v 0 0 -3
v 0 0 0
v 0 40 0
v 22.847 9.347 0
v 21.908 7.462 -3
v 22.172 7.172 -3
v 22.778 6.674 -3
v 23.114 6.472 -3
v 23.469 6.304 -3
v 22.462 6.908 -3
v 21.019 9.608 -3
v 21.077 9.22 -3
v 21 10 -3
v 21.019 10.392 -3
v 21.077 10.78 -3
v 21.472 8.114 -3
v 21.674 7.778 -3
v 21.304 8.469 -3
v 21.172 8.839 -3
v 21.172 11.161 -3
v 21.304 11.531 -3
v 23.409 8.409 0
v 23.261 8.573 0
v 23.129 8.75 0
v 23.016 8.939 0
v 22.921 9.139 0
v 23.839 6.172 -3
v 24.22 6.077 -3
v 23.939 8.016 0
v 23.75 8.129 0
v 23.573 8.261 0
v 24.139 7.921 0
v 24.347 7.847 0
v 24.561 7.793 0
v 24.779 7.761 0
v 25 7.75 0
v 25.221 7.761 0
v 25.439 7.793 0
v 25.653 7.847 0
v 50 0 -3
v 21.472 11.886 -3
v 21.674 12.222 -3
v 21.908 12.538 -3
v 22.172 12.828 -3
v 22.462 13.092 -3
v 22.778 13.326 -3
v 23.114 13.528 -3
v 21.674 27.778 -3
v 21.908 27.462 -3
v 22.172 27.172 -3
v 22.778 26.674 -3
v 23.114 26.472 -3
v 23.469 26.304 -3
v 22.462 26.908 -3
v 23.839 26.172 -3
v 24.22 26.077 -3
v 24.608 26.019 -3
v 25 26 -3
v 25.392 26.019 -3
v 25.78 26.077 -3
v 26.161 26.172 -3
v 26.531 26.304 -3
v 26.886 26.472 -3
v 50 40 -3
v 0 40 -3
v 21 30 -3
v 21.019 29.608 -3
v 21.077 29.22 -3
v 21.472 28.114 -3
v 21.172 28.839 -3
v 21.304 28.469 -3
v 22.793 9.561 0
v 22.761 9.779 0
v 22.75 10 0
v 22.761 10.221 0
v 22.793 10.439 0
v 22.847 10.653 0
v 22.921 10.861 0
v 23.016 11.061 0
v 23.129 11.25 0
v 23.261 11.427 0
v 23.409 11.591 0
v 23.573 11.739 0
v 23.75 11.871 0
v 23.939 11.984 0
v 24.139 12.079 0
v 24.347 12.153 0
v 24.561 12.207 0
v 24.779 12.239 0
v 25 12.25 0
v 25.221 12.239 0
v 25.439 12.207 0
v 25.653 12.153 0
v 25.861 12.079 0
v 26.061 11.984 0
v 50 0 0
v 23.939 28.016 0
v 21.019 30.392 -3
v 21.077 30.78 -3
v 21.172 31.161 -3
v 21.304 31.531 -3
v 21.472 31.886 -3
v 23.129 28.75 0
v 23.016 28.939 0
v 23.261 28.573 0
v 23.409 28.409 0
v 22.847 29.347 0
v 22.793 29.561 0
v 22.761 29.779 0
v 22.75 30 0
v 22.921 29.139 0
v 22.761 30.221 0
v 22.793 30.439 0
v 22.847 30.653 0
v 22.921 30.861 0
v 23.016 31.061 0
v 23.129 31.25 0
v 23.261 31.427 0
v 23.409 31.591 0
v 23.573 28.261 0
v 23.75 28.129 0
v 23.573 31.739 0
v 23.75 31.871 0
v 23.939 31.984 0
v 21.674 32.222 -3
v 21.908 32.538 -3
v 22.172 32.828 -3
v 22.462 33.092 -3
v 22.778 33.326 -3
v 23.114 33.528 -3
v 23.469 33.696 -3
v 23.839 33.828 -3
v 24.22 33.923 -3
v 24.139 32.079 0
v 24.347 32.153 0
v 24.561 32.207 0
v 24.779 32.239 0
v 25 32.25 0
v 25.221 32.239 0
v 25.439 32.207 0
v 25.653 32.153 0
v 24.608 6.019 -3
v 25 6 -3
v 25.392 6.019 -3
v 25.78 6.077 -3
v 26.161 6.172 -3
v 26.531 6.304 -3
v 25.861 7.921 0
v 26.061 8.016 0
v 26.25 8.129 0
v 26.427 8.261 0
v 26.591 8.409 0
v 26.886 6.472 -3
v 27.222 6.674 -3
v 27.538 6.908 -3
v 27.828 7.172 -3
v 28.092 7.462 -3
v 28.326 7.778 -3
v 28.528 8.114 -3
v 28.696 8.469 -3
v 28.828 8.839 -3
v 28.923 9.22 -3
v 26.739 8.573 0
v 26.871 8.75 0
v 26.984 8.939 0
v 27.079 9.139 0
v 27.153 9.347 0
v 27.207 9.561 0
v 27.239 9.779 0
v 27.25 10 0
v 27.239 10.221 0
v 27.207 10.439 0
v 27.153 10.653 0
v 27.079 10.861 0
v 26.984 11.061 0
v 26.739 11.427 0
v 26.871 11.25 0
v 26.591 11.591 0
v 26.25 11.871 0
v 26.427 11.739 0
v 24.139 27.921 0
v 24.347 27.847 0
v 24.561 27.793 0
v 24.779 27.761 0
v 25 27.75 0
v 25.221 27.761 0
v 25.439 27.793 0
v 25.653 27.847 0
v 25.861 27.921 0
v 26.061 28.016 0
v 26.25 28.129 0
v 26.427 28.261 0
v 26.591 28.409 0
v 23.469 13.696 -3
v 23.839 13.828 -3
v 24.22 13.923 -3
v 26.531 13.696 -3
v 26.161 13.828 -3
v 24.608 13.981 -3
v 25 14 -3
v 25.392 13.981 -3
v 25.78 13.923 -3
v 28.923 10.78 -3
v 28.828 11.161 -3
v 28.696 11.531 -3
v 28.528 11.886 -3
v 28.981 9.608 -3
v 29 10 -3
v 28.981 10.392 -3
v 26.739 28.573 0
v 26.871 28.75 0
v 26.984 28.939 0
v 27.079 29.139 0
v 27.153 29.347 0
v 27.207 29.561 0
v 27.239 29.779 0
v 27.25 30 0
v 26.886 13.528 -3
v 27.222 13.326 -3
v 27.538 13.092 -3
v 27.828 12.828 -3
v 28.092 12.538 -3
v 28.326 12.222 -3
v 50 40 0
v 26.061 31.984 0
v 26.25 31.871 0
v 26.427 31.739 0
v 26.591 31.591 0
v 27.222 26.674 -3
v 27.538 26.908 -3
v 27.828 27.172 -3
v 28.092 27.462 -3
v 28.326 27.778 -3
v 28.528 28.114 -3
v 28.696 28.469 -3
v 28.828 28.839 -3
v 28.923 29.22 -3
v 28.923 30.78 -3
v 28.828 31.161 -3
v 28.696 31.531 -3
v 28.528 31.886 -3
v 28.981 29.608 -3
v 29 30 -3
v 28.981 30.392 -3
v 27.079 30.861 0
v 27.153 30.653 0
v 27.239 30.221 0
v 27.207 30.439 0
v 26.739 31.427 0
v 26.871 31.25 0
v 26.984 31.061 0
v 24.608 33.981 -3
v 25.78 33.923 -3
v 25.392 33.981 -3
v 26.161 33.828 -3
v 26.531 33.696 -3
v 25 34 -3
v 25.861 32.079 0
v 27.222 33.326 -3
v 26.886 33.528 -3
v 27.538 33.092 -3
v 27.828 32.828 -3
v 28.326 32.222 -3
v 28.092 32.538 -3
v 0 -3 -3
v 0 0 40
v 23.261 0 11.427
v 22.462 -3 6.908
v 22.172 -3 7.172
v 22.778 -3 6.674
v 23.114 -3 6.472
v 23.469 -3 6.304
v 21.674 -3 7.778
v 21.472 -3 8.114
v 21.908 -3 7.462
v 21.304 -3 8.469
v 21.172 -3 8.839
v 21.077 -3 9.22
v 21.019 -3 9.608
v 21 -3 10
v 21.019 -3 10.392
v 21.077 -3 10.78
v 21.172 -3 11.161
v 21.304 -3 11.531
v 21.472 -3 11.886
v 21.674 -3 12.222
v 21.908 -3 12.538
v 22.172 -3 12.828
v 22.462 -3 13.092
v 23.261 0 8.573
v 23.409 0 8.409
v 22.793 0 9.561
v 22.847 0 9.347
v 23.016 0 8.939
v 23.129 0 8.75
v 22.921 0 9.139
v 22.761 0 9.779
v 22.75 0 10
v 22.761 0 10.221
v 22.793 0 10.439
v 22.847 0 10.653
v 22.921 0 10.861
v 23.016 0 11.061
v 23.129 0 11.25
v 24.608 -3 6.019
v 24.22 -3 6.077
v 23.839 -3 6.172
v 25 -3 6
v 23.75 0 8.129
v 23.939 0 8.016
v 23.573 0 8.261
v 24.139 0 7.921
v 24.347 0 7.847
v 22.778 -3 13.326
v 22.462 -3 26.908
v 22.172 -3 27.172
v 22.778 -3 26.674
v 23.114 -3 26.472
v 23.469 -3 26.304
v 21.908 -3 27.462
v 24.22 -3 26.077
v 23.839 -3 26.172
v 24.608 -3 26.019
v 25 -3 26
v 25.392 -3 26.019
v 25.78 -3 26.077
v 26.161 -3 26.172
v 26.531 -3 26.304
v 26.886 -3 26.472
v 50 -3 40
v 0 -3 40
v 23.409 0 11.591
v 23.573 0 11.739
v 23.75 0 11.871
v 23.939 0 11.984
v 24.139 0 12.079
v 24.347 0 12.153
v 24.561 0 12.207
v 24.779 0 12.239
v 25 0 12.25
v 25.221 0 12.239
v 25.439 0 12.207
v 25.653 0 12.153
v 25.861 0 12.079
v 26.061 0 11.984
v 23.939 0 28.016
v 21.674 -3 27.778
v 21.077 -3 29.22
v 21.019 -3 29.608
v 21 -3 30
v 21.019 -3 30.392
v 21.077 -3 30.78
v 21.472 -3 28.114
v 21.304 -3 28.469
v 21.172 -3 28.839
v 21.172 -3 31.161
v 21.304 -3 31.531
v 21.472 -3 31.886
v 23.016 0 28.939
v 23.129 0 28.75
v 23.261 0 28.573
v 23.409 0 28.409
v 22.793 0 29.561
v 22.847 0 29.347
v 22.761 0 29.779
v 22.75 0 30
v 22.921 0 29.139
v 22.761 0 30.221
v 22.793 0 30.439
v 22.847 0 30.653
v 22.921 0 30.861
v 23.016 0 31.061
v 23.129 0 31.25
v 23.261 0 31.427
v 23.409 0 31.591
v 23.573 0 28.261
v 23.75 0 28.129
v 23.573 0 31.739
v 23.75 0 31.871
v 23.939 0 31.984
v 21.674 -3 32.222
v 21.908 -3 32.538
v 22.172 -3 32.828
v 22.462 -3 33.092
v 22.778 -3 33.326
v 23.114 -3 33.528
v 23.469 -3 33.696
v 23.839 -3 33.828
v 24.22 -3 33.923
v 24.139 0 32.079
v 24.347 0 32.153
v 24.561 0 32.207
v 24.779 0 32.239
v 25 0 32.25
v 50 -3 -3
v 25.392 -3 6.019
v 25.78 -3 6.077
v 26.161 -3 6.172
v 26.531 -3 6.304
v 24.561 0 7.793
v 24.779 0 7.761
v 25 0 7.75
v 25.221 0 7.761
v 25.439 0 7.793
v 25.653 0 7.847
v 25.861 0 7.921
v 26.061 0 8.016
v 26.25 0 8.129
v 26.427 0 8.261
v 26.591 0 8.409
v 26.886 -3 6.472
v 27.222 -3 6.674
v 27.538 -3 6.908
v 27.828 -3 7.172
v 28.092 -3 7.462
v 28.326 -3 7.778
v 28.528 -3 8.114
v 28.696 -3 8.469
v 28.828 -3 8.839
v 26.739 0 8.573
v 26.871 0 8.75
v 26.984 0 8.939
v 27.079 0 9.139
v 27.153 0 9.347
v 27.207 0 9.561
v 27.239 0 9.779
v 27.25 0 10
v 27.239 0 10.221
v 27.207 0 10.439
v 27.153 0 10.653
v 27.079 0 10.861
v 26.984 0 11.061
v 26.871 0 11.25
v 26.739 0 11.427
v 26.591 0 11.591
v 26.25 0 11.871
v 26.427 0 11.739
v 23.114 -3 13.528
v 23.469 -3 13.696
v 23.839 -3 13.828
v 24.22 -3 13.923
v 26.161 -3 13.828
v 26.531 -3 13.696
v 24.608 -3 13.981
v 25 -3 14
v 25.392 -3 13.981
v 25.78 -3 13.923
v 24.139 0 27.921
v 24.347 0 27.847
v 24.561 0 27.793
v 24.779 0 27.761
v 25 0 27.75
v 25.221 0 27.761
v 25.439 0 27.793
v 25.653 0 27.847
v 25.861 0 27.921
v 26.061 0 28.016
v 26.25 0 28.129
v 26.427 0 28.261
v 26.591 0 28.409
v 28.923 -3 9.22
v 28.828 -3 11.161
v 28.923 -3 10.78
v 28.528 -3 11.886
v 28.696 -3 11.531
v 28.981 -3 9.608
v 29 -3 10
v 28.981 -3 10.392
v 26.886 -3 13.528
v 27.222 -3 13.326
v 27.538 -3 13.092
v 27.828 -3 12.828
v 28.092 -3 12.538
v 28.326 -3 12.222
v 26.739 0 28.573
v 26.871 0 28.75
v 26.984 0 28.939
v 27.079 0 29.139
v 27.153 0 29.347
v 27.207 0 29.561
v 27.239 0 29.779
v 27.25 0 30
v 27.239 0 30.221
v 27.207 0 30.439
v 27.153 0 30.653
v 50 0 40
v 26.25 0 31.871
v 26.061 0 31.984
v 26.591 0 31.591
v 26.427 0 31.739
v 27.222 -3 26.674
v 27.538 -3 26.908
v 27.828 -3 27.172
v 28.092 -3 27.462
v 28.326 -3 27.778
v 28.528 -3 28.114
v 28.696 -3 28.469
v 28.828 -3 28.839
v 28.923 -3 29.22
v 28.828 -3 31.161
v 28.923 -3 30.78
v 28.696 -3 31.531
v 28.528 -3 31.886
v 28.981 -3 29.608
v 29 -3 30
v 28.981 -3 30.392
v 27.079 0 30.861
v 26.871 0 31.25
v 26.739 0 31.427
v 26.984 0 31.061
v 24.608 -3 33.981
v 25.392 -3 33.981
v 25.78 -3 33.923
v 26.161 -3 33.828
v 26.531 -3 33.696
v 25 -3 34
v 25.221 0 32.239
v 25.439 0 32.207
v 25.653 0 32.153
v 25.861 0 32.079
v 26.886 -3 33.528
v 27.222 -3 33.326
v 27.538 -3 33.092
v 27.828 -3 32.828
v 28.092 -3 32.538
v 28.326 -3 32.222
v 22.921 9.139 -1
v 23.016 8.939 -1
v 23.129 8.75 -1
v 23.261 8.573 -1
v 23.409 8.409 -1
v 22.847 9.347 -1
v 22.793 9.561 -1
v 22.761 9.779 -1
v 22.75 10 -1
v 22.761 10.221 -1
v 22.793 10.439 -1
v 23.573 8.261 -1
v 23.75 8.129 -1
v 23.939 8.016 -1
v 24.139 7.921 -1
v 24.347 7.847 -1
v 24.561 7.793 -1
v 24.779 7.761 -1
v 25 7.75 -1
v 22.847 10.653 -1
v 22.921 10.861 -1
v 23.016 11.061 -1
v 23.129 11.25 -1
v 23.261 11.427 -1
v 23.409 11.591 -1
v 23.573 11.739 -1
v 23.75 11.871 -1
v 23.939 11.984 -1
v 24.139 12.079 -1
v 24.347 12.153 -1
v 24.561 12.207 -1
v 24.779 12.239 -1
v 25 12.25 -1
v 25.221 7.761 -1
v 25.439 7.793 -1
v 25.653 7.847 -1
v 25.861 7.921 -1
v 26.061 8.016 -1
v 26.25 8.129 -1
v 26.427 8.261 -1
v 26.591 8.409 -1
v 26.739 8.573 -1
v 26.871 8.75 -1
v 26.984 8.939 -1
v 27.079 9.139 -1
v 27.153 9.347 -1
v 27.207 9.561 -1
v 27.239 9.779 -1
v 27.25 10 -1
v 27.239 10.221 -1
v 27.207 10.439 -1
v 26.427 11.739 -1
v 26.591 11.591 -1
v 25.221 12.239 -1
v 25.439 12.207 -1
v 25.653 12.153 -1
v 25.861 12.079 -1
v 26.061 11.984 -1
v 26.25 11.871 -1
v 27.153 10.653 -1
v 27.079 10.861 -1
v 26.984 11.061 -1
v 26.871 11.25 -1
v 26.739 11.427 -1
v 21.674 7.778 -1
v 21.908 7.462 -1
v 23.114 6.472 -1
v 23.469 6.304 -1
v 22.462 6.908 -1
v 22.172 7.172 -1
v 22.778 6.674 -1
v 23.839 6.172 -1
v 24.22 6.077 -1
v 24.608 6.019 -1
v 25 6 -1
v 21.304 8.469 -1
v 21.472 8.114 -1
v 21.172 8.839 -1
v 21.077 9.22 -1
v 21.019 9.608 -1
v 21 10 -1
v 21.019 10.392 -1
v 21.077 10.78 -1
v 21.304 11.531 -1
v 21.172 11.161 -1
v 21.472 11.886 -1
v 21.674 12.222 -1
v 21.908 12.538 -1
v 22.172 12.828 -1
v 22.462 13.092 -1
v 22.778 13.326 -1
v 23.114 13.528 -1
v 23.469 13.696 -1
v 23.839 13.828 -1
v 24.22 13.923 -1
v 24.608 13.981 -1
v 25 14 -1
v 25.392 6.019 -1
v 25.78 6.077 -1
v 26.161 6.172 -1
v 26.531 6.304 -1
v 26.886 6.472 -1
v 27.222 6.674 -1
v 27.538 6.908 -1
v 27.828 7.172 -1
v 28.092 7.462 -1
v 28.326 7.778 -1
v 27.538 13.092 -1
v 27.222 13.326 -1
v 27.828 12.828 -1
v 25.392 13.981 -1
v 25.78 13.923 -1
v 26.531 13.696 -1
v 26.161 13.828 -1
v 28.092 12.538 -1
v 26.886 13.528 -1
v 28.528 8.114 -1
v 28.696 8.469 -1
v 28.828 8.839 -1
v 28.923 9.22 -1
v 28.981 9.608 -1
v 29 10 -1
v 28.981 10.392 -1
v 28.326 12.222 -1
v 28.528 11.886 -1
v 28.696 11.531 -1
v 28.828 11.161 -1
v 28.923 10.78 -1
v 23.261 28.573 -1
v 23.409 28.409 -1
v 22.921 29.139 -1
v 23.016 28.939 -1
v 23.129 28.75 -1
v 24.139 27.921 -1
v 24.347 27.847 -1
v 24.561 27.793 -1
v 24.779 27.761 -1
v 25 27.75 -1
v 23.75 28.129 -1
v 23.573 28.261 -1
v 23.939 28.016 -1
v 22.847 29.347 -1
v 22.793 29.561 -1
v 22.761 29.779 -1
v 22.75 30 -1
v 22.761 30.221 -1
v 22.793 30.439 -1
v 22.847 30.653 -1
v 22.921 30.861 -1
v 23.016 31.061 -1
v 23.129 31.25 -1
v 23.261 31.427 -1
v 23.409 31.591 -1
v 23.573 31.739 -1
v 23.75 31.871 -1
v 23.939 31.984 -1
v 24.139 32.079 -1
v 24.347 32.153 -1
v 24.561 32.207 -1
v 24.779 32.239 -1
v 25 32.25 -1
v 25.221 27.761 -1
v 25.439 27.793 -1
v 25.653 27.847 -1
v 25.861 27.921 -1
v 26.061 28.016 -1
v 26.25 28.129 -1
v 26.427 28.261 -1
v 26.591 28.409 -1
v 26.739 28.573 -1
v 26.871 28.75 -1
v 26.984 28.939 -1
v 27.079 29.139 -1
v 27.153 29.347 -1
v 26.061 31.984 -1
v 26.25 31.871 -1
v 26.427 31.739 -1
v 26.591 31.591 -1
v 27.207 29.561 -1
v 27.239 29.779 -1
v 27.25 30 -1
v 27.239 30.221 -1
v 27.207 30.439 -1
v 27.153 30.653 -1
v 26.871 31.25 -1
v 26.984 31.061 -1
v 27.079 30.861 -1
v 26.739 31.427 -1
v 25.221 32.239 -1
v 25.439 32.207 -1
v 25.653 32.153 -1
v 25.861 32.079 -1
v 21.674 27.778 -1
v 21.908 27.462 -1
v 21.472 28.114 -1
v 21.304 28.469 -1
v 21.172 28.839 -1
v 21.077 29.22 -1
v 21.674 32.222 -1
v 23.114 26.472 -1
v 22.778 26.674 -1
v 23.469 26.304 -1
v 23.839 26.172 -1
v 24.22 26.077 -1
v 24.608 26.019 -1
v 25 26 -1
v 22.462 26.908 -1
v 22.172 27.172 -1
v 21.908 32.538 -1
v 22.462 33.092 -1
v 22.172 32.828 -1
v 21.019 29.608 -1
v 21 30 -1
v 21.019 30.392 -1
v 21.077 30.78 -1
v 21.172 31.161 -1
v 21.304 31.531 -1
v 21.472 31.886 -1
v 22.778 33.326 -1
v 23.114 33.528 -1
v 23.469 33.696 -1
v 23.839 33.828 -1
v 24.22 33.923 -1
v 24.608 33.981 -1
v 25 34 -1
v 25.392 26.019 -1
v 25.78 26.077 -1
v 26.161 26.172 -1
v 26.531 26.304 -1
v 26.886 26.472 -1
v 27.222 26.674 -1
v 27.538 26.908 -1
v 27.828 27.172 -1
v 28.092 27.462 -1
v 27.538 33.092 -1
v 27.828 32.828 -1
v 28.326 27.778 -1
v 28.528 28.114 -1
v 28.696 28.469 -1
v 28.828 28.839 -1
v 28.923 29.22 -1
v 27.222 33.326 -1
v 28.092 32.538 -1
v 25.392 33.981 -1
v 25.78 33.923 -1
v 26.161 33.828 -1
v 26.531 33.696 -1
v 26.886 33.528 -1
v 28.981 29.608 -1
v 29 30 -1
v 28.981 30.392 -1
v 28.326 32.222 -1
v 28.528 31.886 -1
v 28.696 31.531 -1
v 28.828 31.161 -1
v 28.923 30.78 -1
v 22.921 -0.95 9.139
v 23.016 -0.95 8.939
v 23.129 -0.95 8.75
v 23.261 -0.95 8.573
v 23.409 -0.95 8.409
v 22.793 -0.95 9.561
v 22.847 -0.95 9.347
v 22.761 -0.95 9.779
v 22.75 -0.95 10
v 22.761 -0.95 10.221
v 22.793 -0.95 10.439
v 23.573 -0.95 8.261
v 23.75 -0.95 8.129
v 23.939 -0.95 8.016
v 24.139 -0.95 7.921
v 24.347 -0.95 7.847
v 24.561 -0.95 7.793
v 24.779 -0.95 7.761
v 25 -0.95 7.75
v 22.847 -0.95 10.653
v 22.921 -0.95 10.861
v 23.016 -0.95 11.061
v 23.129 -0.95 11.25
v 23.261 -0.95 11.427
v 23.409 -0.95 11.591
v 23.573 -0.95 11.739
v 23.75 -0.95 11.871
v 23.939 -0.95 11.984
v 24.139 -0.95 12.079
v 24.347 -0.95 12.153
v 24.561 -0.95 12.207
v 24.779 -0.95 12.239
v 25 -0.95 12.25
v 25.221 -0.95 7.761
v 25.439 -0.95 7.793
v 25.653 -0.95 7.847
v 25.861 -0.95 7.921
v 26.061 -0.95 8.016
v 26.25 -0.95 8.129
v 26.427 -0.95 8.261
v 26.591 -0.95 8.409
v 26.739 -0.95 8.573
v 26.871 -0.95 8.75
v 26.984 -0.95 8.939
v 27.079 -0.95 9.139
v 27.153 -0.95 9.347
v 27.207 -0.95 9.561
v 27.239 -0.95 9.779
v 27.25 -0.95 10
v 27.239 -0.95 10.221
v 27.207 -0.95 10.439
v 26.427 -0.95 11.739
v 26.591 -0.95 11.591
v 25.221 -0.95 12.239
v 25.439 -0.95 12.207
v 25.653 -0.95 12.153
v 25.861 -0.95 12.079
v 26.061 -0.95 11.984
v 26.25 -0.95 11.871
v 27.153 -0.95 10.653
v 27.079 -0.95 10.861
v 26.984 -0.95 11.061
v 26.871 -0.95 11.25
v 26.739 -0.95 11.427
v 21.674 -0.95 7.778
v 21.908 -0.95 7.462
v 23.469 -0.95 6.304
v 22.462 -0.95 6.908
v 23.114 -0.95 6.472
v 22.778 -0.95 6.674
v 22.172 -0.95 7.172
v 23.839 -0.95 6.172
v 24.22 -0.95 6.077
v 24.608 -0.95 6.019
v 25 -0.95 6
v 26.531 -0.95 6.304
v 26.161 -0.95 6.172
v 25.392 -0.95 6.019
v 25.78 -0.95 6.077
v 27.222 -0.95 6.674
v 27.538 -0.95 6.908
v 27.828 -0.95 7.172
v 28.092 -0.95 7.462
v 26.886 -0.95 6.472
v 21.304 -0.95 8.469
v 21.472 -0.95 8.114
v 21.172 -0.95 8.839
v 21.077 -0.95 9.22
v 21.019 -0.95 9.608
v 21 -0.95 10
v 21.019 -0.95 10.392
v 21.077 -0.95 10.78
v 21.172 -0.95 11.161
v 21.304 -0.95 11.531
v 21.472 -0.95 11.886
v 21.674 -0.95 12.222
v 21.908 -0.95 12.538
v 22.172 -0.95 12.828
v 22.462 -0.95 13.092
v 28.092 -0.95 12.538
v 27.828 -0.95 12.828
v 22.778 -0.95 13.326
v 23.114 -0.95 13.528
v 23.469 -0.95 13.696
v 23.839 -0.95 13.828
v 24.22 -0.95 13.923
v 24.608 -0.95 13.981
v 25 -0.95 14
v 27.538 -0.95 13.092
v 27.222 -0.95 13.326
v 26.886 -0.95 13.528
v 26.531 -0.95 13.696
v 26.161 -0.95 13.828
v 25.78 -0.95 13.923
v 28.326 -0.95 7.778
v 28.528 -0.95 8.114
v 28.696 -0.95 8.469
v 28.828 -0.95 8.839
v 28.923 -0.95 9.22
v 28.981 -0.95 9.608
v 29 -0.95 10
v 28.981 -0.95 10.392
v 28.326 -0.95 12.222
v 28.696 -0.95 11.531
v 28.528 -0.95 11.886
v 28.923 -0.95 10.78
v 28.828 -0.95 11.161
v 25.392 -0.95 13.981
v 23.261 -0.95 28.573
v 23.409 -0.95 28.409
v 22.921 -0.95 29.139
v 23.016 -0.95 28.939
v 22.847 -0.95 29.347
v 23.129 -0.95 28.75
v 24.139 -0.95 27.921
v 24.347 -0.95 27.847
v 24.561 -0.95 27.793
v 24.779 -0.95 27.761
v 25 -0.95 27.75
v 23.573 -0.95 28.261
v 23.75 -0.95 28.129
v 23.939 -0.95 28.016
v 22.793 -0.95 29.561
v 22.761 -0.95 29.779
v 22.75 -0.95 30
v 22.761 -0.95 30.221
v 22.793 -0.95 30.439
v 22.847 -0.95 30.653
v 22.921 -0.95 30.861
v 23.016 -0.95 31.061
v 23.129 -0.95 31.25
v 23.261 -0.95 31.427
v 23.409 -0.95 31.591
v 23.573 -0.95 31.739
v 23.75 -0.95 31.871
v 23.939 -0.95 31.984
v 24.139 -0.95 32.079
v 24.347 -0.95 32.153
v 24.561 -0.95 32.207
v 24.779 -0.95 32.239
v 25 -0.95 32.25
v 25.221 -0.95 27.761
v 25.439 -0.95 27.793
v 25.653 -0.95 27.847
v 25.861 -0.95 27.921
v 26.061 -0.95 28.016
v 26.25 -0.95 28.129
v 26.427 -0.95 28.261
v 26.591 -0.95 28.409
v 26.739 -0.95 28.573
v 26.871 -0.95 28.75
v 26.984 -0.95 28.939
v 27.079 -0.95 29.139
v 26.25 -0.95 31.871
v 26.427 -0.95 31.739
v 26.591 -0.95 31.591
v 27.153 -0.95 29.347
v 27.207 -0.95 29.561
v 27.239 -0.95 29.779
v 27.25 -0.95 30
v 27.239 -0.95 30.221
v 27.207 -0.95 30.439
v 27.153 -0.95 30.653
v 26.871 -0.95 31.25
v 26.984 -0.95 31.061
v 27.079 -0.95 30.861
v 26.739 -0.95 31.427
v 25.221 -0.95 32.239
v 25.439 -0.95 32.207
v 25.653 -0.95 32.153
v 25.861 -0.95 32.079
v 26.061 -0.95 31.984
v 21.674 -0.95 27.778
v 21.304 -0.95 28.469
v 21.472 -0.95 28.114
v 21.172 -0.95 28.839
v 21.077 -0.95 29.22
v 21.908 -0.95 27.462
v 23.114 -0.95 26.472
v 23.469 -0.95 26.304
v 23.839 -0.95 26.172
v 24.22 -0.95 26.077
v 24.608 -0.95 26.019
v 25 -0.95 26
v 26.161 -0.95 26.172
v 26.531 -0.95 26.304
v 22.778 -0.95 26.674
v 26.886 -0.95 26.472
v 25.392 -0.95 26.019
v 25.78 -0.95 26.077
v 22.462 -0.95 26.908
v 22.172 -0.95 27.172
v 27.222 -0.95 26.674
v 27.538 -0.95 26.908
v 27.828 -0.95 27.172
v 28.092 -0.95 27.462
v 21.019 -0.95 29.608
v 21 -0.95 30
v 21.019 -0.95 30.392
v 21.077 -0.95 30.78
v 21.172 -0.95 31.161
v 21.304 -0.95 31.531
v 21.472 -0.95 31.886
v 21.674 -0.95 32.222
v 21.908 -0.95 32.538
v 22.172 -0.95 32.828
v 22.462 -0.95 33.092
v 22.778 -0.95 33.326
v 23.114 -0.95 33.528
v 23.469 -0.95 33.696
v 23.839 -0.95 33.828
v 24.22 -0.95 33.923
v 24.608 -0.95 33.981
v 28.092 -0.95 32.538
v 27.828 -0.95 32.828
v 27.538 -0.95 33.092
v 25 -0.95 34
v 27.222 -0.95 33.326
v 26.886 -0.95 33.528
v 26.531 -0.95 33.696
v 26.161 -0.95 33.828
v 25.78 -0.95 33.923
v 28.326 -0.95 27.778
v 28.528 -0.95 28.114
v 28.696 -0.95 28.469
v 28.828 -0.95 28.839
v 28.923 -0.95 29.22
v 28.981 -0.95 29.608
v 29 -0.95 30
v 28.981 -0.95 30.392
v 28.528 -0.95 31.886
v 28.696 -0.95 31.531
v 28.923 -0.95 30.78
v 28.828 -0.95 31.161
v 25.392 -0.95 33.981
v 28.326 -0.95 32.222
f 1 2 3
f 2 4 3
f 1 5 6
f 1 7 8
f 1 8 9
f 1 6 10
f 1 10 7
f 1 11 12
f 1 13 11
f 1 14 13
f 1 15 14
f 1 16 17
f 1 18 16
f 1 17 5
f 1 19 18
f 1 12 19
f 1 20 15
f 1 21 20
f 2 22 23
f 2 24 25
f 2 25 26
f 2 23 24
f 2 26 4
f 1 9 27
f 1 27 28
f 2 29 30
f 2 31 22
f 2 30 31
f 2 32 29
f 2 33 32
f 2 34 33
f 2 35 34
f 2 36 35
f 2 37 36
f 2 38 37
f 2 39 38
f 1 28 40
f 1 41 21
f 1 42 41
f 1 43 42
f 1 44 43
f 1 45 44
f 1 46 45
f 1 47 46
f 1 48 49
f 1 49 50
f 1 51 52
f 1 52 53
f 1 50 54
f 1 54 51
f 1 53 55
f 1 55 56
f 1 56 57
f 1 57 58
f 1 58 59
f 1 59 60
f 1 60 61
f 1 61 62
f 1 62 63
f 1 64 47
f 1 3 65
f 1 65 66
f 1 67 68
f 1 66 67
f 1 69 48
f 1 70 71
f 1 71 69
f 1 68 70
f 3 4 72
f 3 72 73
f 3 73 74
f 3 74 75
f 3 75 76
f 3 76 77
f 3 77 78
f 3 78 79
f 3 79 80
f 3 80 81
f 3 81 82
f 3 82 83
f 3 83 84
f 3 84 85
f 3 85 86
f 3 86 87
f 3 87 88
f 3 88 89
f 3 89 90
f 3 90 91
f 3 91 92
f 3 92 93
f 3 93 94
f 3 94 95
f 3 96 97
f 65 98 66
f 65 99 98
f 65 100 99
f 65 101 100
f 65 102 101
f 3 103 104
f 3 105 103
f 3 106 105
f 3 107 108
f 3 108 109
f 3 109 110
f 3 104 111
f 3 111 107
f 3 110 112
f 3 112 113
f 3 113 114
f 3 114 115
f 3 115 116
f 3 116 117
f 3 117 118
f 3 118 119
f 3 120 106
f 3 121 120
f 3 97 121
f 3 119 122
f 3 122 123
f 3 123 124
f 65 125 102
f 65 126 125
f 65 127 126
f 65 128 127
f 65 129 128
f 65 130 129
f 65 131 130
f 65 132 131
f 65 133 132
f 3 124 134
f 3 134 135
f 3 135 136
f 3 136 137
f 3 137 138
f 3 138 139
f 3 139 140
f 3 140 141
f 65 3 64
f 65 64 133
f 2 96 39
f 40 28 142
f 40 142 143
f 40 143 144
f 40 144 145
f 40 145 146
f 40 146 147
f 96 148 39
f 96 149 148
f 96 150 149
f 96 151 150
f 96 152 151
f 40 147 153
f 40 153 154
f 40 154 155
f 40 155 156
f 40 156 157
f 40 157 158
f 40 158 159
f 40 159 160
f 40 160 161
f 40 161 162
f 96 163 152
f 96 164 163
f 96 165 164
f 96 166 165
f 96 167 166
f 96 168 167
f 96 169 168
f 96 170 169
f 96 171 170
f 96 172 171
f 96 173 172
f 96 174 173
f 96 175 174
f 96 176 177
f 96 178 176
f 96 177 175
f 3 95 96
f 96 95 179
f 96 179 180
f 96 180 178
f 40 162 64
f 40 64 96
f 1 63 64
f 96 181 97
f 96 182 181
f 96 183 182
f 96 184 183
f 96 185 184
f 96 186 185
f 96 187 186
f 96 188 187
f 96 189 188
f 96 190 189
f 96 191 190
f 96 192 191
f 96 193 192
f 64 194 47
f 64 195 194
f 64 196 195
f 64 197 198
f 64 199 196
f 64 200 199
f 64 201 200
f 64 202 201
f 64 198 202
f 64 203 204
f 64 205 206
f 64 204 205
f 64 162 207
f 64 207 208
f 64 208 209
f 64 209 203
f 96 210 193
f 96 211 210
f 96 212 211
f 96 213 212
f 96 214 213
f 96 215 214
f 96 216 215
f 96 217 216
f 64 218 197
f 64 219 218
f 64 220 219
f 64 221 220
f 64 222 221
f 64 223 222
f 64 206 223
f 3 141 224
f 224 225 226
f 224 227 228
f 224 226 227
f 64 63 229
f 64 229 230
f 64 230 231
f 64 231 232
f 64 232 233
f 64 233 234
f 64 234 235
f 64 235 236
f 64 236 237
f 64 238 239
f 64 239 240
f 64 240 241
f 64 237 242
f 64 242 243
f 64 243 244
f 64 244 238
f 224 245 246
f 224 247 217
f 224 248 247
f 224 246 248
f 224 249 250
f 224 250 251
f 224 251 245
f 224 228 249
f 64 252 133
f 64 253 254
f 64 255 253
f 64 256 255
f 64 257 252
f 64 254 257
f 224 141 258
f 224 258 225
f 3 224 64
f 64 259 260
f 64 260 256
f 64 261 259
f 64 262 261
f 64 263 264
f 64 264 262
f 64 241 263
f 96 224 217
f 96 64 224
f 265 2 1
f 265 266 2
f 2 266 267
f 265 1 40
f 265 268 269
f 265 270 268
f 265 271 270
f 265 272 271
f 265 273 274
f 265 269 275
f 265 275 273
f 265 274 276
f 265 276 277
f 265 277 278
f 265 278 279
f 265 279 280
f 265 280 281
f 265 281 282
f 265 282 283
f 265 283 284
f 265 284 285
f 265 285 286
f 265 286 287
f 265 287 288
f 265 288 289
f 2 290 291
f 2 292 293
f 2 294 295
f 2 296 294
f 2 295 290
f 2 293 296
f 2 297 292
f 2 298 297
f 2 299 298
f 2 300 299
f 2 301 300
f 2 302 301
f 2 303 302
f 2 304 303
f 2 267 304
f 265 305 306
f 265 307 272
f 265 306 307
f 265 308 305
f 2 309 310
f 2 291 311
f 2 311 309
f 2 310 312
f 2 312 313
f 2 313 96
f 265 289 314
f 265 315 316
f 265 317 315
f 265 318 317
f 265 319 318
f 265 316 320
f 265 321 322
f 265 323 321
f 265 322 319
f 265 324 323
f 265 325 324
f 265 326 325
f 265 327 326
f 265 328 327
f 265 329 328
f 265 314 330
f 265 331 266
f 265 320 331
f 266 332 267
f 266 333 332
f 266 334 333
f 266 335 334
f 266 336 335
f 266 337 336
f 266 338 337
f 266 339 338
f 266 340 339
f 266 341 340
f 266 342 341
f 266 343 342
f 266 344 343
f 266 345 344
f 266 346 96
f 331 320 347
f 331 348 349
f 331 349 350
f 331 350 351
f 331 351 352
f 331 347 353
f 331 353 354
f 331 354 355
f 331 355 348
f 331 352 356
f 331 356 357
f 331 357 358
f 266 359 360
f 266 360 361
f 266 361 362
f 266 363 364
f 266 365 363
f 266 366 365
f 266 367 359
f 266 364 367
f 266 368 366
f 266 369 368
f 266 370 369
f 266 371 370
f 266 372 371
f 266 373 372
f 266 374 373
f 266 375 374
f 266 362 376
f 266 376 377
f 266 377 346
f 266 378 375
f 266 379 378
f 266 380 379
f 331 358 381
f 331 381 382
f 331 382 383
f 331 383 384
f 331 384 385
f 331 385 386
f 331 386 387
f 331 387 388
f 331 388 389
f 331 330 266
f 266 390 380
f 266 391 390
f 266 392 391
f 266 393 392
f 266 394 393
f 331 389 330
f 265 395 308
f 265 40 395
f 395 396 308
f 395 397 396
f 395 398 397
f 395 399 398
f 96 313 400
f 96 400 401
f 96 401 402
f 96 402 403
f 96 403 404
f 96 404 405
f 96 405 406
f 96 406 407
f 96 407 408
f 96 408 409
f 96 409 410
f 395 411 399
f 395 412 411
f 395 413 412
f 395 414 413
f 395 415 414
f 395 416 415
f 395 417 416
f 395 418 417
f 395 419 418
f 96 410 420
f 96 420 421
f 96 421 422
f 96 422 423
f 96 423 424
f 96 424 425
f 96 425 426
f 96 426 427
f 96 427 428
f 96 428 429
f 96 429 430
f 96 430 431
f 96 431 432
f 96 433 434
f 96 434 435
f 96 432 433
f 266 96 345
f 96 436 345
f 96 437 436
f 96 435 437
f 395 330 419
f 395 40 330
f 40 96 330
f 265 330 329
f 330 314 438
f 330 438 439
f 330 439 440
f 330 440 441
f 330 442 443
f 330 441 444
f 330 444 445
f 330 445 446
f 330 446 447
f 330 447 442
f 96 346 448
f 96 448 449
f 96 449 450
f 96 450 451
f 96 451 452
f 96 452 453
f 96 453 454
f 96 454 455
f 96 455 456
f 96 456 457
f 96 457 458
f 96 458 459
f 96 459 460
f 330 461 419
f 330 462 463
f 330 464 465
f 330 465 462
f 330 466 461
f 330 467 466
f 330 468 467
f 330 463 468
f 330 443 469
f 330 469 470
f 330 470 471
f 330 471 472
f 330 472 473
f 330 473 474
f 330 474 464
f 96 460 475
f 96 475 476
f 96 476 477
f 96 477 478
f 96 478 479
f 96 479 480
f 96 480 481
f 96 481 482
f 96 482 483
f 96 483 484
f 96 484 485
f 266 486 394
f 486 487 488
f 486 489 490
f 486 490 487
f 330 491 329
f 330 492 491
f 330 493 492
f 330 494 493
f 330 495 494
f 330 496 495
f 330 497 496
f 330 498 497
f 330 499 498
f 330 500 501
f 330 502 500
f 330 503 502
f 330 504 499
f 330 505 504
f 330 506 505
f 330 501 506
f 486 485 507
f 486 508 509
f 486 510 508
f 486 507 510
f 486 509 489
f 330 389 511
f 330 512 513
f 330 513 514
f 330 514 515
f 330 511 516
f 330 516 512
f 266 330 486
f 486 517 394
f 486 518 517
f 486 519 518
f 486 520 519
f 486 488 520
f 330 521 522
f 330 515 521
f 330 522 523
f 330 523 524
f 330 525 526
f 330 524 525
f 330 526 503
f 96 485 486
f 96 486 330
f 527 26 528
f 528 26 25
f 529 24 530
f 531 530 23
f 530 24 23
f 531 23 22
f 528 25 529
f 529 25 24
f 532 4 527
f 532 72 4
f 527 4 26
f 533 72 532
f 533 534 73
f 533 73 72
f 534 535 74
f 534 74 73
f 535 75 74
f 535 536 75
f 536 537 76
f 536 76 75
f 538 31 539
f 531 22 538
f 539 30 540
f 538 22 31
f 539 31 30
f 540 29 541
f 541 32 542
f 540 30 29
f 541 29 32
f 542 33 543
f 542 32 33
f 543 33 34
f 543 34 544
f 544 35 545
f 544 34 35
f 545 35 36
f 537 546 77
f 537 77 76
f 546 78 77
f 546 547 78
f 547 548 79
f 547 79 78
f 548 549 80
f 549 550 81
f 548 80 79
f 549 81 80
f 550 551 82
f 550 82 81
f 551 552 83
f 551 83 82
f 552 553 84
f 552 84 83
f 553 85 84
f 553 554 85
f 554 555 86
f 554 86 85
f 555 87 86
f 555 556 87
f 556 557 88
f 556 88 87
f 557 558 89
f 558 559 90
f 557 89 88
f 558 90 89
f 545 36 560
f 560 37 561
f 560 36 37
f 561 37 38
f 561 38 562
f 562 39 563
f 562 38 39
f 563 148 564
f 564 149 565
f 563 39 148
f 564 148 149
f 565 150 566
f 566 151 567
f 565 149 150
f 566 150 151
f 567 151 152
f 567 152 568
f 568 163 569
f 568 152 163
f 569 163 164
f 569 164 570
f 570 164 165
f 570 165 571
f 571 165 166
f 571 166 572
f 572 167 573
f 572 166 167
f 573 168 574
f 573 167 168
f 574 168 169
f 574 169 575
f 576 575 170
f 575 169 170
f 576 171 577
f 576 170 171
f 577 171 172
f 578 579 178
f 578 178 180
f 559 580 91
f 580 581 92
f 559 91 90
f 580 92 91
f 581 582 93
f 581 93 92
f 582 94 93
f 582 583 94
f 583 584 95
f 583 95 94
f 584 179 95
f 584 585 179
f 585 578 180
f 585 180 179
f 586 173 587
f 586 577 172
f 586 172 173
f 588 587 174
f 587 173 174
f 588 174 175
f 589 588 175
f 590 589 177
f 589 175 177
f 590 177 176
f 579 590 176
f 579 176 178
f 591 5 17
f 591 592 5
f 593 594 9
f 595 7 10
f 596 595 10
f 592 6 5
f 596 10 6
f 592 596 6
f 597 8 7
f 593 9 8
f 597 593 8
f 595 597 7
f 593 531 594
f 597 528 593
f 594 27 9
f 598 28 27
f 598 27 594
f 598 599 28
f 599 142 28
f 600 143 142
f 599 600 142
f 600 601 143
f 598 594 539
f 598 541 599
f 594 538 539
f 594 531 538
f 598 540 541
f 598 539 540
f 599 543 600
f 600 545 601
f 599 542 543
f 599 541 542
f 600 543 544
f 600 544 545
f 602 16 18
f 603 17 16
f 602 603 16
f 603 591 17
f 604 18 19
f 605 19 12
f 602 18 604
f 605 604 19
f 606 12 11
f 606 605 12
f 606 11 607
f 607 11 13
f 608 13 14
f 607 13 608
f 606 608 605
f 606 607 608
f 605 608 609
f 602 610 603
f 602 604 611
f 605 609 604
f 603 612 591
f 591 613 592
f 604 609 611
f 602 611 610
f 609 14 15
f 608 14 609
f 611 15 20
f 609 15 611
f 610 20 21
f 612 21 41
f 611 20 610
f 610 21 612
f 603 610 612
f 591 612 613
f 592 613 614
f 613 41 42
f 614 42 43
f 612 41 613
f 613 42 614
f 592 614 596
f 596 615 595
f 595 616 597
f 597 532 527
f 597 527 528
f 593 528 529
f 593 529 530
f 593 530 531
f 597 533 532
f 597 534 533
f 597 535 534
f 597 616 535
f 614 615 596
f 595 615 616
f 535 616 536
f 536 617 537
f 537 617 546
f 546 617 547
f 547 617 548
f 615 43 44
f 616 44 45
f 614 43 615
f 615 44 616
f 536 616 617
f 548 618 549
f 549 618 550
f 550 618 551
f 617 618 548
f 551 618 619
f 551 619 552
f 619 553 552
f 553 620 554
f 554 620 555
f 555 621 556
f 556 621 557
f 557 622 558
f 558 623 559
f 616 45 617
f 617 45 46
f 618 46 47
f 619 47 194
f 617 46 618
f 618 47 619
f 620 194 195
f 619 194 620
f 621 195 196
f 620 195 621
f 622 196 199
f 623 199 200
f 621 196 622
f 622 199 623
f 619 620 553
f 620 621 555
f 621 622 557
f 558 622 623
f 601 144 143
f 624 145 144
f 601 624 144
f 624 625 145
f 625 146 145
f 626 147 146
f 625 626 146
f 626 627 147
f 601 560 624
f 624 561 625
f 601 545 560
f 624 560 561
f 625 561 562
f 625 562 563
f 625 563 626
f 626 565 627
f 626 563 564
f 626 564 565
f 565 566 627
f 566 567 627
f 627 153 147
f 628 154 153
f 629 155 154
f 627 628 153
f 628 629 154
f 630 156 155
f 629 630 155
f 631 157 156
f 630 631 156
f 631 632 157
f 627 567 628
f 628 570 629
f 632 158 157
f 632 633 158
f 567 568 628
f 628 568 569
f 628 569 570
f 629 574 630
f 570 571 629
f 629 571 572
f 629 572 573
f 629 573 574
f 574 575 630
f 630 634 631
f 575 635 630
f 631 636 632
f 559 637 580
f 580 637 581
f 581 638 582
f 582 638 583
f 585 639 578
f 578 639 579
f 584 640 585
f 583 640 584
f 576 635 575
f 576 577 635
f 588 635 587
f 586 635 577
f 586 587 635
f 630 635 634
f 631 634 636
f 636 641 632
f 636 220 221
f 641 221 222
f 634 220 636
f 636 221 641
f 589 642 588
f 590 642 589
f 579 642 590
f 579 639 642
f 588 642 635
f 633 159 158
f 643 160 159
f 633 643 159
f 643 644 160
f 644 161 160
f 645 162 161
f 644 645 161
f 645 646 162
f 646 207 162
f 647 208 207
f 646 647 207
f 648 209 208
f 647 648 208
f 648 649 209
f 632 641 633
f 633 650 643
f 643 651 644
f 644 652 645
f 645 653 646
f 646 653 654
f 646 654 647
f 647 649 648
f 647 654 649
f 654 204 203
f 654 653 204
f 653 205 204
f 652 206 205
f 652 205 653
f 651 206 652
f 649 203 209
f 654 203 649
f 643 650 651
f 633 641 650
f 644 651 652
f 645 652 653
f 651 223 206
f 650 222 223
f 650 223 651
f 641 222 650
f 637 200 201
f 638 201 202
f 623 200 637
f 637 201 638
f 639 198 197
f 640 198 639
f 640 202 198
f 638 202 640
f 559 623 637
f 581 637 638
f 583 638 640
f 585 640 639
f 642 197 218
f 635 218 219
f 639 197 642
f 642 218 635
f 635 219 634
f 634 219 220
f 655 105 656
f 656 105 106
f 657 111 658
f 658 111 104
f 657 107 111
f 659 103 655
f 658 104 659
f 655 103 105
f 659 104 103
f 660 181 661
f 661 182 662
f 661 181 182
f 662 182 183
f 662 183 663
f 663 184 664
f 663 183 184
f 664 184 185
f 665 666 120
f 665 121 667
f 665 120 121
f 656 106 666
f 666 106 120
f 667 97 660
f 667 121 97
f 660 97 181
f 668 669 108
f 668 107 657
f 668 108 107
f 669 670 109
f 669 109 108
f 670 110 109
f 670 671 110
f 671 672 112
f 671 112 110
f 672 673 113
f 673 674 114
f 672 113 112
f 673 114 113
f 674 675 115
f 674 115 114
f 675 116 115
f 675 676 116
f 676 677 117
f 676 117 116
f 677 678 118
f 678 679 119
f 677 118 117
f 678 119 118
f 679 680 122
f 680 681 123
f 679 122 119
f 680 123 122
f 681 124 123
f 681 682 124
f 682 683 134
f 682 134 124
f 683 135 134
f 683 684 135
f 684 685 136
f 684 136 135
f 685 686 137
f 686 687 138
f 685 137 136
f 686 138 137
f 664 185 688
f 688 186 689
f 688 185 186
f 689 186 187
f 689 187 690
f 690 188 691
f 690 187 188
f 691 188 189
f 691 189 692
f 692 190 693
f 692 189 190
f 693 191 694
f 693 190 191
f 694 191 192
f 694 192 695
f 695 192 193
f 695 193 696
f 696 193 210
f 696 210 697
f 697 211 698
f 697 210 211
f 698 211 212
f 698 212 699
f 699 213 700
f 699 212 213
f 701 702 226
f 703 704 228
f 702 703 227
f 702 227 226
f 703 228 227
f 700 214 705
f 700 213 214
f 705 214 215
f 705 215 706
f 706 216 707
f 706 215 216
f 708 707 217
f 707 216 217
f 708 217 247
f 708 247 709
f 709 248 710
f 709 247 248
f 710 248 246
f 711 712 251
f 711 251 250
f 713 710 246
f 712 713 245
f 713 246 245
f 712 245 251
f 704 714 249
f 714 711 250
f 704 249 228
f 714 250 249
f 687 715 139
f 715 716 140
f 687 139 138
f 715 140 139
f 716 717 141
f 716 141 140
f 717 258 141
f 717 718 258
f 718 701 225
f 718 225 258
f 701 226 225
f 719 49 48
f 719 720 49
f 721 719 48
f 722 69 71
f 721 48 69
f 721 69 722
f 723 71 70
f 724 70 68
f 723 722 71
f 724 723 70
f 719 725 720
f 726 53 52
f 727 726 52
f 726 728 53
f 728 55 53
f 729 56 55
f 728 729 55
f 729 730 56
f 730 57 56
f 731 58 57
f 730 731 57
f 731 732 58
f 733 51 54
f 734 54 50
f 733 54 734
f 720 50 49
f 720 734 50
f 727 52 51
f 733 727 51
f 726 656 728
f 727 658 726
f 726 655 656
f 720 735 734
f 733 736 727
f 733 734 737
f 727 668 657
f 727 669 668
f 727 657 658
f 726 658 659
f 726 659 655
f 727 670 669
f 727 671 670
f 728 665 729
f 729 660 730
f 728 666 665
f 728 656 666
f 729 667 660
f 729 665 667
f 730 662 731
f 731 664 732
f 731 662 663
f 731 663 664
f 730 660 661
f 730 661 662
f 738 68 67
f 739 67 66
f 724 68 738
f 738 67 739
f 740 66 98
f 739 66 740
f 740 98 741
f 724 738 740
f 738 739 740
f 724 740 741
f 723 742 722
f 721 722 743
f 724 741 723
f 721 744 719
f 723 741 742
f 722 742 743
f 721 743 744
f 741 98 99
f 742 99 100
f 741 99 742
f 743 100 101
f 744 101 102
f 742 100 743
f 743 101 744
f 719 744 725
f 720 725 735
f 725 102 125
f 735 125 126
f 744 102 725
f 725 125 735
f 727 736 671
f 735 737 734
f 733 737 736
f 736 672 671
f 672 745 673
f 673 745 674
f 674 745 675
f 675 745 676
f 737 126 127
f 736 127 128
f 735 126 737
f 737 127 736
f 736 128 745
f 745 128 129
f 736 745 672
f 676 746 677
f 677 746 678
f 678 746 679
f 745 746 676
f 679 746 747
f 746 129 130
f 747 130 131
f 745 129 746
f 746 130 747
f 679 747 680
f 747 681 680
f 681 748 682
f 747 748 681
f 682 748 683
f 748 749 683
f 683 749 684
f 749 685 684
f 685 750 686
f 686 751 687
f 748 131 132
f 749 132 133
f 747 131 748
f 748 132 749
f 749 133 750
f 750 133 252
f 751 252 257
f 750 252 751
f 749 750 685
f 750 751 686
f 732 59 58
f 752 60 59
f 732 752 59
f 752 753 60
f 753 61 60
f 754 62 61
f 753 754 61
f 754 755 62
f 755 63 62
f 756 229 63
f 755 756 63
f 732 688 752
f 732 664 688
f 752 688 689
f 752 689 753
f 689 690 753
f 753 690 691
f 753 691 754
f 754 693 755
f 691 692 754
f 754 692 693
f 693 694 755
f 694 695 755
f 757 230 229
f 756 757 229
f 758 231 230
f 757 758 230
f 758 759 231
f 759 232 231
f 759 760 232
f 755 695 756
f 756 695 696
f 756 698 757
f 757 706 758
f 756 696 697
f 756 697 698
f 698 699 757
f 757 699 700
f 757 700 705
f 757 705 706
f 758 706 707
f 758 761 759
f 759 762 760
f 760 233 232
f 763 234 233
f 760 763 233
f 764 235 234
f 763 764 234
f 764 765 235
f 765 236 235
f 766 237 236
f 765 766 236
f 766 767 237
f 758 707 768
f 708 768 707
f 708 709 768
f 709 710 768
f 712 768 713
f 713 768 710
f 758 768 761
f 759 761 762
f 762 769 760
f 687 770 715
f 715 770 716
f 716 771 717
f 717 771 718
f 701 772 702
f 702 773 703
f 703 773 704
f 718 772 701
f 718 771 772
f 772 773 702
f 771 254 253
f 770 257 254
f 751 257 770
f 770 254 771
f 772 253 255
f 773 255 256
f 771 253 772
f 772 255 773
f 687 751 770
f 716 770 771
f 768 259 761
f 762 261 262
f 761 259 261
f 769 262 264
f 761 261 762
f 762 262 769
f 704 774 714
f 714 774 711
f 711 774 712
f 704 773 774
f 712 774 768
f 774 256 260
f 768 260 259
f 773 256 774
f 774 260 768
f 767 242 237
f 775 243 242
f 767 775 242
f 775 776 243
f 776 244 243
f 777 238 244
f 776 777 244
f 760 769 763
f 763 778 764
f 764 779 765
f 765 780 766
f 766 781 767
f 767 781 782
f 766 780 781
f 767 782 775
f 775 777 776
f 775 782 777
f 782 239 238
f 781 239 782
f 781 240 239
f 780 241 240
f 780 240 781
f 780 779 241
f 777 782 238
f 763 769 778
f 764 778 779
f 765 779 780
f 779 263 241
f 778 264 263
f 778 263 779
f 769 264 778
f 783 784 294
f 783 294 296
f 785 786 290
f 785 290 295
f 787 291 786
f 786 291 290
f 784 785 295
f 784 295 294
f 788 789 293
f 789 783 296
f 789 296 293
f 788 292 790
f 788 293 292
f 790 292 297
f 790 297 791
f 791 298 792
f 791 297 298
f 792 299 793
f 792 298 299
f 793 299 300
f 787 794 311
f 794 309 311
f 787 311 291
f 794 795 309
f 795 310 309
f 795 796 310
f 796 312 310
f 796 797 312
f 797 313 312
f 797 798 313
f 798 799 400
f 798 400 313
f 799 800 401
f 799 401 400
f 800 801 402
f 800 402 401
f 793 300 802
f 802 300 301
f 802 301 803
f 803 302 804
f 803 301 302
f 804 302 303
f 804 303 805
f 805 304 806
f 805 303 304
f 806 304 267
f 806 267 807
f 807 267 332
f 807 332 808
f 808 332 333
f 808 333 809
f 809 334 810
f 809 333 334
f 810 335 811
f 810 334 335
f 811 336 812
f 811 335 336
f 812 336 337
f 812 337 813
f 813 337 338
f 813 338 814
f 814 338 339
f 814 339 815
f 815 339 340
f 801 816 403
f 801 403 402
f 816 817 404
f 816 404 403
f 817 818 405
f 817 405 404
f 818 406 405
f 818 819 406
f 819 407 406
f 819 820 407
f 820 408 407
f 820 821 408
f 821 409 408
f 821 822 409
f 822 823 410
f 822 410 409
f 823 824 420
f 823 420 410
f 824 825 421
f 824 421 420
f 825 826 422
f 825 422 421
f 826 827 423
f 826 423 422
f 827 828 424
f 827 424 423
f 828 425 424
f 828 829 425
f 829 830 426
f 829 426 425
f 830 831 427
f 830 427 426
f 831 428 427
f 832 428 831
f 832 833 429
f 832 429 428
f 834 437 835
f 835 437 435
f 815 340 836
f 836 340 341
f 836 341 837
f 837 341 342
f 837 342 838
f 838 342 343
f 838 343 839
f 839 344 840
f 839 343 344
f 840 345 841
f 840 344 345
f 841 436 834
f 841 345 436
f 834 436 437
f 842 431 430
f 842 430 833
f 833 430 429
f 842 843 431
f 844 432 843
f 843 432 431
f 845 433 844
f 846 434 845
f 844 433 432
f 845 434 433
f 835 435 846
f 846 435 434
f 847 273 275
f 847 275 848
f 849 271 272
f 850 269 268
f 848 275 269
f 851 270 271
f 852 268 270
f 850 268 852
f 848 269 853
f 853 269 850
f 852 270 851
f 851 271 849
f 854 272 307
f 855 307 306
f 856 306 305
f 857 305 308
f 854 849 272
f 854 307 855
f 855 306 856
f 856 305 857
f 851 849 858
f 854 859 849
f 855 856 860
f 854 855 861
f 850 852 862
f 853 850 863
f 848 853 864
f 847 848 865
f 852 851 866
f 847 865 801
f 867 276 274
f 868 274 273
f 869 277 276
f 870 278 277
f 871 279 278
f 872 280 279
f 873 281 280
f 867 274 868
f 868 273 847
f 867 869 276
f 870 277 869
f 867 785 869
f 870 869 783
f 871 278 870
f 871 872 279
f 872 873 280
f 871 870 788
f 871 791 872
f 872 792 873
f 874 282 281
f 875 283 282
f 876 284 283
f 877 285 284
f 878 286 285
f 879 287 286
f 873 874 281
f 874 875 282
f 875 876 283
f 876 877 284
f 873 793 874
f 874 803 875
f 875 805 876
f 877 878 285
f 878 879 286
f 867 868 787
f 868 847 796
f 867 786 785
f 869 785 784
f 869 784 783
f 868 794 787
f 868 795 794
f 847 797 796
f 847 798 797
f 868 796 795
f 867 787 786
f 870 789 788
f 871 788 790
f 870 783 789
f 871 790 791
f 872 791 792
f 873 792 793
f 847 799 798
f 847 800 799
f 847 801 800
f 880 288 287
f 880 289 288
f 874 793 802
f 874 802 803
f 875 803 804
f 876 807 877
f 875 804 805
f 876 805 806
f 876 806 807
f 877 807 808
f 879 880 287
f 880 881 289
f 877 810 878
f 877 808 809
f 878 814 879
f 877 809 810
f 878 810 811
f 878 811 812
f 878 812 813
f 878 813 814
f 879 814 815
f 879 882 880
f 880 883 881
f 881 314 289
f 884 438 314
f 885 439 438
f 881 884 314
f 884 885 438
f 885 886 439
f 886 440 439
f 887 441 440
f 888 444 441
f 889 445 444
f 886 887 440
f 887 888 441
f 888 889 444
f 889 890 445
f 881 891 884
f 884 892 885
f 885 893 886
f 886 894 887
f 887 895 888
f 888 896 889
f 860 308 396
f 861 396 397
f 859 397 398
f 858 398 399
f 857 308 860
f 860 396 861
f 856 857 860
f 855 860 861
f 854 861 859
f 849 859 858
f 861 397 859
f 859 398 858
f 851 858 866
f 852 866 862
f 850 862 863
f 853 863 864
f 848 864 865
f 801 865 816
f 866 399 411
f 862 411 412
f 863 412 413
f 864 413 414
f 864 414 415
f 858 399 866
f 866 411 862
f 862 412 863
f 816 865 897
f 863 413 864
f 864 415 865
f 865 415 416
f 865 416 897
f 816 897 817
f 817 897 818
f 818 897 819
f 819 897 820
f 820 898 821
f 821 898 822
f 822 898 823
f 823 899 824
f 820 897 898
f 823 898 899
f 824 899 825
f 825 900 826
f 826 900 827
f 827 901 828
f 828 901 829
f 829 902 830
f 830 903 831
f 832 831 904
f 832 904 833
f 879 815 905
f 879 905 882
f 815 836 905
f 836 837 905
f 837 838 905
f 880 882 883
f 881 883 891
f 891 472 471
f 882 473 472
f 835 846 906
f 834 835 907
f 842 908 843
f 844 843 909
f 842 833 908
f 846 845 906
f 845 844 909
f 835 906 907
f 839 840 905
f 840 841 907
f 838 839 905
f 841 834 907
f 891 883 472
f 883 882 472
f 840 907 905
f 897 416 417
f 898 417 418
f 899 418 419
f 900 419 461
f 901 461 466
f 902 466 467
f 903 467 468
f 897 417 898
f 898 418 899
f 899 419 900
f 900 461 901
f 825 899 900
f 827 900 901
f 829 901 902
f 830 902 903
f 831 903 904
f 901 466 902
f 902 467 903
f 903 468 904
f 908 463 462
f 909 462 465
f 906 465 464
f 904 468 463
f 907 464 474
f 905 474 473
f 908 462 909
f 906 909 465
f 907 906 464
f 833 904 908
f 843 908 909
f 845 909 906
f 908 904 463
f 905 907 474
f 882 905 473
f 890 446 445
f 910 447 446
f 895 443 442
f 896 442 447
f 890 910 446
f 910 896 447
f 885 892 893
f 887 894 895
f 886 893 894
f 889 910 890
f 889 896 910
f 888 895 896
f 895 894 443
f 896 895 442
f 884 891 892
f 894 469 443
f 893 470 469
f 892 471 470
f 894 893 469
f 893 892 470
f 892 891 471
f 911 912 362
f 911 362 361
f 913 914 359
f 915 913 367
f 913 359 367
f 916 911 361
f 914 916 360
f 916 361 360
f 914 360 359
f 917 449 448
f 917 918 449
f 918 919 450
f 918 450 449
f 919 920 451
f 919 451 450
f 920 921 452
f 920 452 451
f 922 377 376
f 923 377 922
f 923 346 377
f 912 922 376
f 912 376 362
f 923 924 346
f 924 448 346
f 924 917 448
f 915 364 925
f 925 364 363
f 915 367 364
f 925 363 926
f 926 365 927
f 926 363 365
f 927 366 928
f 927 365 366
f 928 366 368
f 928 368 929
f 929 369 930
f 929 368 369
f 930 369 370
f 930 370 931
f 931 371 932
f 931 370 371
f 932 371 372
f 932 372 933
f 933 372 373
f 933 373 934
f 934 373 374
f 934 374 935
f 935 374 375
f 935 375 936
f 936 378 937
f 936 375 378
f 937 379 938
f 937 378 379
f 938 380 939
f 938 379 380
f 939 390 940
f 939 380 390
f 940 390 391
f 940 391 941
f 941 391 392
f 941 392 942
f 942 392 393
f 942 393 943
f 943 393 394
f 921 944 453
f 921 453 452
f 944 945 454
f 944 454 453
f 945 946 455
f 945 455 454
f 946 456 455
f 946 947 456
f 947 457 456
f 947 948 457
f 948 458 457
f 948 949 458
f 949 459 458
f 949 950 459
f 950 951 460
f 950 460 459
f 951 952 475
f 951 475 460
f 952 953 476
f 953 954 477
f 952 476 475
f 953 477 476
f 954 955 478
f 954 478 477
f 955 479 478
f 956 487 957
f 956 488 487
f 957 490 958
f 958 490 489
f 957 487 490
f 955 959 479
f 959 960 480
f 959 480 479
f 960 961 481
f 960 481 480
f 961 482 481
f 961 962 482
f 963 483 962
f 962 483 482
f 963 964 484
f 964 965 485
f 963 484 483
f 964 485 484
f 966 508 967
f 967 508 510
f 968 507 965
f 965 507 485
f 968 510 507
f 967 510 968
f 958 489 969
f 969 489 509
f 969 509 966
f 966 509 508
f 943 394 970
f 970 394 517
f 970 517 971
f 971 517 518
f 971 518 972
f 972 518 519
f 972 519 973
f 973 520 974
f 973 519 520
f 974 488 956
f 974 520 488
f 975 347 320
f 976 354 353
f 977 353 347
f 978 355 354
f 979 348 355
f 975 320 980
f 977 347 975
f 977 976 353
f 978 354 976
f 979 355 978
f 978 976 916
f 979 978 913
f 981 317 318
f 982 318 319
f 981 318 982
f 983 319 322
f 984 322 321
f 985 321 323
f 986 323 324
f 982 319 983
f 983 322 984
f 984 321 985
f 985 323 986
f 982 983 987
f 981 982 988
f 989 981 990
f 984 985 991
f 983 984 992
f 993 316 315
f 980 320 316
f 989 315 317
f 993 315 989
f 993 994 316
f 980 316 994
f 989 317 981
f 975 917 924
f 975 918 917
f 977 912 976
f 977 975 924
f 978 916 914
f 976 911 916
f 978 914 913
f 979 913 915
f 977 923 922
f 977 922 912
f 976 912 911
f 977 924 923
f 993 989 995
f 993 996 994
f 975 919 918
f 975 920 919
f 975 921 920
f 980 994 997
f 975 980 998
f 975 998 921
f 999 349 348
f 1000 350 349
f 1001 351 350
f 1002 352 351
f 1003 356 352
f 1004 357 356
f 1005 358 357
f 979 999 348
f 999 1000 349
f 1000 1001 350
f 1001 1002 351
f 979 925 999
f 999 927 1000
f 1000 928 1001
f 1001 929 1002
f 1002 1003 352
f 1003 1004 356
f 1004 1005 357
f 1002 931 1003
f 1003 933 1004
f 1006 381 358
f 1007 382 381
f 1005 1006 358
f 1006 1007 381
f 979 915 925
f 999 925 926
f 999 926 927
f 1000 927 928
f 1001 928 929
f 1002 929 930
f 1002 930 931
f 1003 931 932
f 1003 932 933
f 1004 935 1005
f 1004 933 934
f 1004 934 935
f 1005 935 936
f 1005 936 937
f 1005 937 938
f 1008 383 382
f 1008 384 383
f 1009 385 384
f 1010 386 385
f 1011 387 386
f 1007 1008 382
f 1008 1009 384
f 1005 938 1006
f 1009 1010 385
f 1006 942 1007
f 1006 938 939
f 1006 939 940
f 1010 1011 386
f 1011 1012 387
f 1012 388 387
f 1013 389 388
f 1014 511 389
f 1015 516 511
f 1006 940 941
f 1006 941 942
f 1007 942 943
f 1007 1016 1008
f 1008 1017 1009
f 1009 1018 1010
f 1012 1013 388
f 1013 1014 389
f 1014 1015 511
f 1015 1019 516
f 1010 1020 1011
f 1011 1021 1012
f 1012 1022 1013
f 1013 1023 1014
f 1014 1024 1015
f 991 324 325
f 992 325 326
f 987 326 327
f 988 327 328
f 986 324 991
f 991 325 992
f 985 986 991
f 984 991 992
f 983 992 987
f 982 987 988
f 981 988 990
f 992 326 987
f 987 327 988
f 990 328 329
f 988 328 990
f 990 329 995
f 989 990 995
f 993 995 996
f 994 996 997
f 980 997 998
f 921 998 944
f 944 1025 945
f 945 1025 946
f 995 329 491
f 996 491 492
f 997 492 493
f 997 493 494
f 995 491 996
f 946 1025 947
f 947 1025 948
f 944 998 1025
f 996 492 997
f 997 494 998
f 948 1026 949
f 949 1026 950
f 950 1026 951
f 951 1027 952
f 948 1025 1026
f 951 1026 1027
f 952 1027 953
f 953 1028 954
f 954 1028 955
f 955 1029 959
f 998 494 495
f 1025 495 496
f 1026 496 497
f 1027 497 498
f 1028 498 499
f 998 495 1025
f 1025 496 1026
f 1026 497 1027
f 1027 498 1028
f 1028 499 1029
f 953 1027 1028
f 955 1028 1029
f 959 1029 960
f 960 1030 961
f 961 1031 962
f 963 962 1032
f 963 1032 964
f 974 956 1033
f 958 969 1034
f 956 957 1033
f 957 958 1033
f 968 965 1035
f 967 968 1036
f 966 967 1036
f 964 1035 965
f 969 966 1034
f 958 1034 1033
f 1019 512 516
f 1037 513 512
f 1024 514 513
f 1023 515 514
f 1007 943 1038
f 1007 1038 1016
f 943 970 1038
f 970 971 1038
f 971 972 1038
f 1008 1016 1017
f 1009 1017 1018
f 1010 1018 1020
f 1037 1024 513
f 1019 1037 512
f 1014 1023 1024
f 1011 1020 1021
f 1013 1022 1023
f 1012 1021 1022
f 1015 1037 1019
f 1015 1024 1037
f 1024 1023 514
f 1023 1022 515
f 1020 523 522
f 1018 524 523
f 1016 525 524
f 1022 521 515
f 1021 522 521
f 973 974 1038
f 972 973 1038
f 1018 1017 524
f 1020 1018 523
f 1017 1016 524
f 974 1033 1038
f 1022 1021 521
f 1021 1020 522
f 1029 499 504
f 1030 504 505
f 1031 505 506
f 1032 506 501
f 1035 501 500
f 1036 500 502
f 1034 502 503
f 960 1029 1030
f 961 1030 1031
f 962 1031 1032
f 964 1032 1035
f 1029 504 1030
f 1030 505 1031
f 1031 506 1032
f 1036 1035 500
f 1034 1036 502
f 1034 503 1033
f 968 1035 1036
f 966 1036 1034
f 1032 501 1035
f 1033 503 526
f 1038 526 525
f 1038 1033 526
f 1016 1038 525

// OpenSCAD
// L-bracket with countersunk holes

$fn = 64;

// Parameters
width     = 50;   // X direction
depth     = 40;   // Y direction (horizontal flange depth)
height    = 40;   // Z direction (vertical flange height)
thickness = 3;    // plate thickness

hole_dia    = 4.5;
csk_dia     = 8;
csk_depth   = 2;
edge_offset = 10;

eps = 0.05;

// Hole positions: on centerline (x = width/2),
// 10mm from each end along the flange length, symmetrical pair.
x_center = width / 2;
pos_a = edge_offset;          // 10
pos_b = depth - edge_offset;  // 30

module l_bracket() {
    difference() {
        union() {
            // Horizontal flange: inner (top) face at z=0, extends in +Y
            translate([0, 0, -thickness])
                cube([width, depth, thickness]);

            // Vertical flange: inner face at y=0, extends in +Z.
            // Includes corner block (z: -thickness..0) for a clean joint.
            translate([0, -thickness, -thickness])
                cube([width, thickness, height + thickness]);
        }

        // --- Horizontal flange holes (axis along Z) ---
        // Outer face is at z = -thickness (bottom) -> countersink there.
        for (y = [pos_a, pos_b]) {
            translate([x_center, y, 0]) {
                // Through hole
                translate([0, 0, -thickness - eps])
                    cylinder(d = hole_dia, h = thickness + 2*eps);
                // Countersink on outer (-Z) face
                translate([0, 0, -thickness - eps])
                    cylinder(d = csk_dia, h = csk_depth + eps);
            }
        }

        // --- Vertical flange holes (axis along Y) ---
        // Outer face is at y = -thickness -> countersink there.
        for (z = [pos_a, pos_b]) {
            translate([x_center, 0, z]) {
                // Through hole along Y
                translate([0, eps, 0])
                    rotate([90, 0, 0])
                        cylinder(d = hole_dia, h = thickness + 2*eps);
                // Countersink on outer (-Y) face
                translate([0, -thickness + csk_depth + eps, 0])
                    rotate([90, 0, 0])
                        cylinder(d = csk_dia, h = csk_depth + eps);
            }
        }
    }
}

l_bracket();
